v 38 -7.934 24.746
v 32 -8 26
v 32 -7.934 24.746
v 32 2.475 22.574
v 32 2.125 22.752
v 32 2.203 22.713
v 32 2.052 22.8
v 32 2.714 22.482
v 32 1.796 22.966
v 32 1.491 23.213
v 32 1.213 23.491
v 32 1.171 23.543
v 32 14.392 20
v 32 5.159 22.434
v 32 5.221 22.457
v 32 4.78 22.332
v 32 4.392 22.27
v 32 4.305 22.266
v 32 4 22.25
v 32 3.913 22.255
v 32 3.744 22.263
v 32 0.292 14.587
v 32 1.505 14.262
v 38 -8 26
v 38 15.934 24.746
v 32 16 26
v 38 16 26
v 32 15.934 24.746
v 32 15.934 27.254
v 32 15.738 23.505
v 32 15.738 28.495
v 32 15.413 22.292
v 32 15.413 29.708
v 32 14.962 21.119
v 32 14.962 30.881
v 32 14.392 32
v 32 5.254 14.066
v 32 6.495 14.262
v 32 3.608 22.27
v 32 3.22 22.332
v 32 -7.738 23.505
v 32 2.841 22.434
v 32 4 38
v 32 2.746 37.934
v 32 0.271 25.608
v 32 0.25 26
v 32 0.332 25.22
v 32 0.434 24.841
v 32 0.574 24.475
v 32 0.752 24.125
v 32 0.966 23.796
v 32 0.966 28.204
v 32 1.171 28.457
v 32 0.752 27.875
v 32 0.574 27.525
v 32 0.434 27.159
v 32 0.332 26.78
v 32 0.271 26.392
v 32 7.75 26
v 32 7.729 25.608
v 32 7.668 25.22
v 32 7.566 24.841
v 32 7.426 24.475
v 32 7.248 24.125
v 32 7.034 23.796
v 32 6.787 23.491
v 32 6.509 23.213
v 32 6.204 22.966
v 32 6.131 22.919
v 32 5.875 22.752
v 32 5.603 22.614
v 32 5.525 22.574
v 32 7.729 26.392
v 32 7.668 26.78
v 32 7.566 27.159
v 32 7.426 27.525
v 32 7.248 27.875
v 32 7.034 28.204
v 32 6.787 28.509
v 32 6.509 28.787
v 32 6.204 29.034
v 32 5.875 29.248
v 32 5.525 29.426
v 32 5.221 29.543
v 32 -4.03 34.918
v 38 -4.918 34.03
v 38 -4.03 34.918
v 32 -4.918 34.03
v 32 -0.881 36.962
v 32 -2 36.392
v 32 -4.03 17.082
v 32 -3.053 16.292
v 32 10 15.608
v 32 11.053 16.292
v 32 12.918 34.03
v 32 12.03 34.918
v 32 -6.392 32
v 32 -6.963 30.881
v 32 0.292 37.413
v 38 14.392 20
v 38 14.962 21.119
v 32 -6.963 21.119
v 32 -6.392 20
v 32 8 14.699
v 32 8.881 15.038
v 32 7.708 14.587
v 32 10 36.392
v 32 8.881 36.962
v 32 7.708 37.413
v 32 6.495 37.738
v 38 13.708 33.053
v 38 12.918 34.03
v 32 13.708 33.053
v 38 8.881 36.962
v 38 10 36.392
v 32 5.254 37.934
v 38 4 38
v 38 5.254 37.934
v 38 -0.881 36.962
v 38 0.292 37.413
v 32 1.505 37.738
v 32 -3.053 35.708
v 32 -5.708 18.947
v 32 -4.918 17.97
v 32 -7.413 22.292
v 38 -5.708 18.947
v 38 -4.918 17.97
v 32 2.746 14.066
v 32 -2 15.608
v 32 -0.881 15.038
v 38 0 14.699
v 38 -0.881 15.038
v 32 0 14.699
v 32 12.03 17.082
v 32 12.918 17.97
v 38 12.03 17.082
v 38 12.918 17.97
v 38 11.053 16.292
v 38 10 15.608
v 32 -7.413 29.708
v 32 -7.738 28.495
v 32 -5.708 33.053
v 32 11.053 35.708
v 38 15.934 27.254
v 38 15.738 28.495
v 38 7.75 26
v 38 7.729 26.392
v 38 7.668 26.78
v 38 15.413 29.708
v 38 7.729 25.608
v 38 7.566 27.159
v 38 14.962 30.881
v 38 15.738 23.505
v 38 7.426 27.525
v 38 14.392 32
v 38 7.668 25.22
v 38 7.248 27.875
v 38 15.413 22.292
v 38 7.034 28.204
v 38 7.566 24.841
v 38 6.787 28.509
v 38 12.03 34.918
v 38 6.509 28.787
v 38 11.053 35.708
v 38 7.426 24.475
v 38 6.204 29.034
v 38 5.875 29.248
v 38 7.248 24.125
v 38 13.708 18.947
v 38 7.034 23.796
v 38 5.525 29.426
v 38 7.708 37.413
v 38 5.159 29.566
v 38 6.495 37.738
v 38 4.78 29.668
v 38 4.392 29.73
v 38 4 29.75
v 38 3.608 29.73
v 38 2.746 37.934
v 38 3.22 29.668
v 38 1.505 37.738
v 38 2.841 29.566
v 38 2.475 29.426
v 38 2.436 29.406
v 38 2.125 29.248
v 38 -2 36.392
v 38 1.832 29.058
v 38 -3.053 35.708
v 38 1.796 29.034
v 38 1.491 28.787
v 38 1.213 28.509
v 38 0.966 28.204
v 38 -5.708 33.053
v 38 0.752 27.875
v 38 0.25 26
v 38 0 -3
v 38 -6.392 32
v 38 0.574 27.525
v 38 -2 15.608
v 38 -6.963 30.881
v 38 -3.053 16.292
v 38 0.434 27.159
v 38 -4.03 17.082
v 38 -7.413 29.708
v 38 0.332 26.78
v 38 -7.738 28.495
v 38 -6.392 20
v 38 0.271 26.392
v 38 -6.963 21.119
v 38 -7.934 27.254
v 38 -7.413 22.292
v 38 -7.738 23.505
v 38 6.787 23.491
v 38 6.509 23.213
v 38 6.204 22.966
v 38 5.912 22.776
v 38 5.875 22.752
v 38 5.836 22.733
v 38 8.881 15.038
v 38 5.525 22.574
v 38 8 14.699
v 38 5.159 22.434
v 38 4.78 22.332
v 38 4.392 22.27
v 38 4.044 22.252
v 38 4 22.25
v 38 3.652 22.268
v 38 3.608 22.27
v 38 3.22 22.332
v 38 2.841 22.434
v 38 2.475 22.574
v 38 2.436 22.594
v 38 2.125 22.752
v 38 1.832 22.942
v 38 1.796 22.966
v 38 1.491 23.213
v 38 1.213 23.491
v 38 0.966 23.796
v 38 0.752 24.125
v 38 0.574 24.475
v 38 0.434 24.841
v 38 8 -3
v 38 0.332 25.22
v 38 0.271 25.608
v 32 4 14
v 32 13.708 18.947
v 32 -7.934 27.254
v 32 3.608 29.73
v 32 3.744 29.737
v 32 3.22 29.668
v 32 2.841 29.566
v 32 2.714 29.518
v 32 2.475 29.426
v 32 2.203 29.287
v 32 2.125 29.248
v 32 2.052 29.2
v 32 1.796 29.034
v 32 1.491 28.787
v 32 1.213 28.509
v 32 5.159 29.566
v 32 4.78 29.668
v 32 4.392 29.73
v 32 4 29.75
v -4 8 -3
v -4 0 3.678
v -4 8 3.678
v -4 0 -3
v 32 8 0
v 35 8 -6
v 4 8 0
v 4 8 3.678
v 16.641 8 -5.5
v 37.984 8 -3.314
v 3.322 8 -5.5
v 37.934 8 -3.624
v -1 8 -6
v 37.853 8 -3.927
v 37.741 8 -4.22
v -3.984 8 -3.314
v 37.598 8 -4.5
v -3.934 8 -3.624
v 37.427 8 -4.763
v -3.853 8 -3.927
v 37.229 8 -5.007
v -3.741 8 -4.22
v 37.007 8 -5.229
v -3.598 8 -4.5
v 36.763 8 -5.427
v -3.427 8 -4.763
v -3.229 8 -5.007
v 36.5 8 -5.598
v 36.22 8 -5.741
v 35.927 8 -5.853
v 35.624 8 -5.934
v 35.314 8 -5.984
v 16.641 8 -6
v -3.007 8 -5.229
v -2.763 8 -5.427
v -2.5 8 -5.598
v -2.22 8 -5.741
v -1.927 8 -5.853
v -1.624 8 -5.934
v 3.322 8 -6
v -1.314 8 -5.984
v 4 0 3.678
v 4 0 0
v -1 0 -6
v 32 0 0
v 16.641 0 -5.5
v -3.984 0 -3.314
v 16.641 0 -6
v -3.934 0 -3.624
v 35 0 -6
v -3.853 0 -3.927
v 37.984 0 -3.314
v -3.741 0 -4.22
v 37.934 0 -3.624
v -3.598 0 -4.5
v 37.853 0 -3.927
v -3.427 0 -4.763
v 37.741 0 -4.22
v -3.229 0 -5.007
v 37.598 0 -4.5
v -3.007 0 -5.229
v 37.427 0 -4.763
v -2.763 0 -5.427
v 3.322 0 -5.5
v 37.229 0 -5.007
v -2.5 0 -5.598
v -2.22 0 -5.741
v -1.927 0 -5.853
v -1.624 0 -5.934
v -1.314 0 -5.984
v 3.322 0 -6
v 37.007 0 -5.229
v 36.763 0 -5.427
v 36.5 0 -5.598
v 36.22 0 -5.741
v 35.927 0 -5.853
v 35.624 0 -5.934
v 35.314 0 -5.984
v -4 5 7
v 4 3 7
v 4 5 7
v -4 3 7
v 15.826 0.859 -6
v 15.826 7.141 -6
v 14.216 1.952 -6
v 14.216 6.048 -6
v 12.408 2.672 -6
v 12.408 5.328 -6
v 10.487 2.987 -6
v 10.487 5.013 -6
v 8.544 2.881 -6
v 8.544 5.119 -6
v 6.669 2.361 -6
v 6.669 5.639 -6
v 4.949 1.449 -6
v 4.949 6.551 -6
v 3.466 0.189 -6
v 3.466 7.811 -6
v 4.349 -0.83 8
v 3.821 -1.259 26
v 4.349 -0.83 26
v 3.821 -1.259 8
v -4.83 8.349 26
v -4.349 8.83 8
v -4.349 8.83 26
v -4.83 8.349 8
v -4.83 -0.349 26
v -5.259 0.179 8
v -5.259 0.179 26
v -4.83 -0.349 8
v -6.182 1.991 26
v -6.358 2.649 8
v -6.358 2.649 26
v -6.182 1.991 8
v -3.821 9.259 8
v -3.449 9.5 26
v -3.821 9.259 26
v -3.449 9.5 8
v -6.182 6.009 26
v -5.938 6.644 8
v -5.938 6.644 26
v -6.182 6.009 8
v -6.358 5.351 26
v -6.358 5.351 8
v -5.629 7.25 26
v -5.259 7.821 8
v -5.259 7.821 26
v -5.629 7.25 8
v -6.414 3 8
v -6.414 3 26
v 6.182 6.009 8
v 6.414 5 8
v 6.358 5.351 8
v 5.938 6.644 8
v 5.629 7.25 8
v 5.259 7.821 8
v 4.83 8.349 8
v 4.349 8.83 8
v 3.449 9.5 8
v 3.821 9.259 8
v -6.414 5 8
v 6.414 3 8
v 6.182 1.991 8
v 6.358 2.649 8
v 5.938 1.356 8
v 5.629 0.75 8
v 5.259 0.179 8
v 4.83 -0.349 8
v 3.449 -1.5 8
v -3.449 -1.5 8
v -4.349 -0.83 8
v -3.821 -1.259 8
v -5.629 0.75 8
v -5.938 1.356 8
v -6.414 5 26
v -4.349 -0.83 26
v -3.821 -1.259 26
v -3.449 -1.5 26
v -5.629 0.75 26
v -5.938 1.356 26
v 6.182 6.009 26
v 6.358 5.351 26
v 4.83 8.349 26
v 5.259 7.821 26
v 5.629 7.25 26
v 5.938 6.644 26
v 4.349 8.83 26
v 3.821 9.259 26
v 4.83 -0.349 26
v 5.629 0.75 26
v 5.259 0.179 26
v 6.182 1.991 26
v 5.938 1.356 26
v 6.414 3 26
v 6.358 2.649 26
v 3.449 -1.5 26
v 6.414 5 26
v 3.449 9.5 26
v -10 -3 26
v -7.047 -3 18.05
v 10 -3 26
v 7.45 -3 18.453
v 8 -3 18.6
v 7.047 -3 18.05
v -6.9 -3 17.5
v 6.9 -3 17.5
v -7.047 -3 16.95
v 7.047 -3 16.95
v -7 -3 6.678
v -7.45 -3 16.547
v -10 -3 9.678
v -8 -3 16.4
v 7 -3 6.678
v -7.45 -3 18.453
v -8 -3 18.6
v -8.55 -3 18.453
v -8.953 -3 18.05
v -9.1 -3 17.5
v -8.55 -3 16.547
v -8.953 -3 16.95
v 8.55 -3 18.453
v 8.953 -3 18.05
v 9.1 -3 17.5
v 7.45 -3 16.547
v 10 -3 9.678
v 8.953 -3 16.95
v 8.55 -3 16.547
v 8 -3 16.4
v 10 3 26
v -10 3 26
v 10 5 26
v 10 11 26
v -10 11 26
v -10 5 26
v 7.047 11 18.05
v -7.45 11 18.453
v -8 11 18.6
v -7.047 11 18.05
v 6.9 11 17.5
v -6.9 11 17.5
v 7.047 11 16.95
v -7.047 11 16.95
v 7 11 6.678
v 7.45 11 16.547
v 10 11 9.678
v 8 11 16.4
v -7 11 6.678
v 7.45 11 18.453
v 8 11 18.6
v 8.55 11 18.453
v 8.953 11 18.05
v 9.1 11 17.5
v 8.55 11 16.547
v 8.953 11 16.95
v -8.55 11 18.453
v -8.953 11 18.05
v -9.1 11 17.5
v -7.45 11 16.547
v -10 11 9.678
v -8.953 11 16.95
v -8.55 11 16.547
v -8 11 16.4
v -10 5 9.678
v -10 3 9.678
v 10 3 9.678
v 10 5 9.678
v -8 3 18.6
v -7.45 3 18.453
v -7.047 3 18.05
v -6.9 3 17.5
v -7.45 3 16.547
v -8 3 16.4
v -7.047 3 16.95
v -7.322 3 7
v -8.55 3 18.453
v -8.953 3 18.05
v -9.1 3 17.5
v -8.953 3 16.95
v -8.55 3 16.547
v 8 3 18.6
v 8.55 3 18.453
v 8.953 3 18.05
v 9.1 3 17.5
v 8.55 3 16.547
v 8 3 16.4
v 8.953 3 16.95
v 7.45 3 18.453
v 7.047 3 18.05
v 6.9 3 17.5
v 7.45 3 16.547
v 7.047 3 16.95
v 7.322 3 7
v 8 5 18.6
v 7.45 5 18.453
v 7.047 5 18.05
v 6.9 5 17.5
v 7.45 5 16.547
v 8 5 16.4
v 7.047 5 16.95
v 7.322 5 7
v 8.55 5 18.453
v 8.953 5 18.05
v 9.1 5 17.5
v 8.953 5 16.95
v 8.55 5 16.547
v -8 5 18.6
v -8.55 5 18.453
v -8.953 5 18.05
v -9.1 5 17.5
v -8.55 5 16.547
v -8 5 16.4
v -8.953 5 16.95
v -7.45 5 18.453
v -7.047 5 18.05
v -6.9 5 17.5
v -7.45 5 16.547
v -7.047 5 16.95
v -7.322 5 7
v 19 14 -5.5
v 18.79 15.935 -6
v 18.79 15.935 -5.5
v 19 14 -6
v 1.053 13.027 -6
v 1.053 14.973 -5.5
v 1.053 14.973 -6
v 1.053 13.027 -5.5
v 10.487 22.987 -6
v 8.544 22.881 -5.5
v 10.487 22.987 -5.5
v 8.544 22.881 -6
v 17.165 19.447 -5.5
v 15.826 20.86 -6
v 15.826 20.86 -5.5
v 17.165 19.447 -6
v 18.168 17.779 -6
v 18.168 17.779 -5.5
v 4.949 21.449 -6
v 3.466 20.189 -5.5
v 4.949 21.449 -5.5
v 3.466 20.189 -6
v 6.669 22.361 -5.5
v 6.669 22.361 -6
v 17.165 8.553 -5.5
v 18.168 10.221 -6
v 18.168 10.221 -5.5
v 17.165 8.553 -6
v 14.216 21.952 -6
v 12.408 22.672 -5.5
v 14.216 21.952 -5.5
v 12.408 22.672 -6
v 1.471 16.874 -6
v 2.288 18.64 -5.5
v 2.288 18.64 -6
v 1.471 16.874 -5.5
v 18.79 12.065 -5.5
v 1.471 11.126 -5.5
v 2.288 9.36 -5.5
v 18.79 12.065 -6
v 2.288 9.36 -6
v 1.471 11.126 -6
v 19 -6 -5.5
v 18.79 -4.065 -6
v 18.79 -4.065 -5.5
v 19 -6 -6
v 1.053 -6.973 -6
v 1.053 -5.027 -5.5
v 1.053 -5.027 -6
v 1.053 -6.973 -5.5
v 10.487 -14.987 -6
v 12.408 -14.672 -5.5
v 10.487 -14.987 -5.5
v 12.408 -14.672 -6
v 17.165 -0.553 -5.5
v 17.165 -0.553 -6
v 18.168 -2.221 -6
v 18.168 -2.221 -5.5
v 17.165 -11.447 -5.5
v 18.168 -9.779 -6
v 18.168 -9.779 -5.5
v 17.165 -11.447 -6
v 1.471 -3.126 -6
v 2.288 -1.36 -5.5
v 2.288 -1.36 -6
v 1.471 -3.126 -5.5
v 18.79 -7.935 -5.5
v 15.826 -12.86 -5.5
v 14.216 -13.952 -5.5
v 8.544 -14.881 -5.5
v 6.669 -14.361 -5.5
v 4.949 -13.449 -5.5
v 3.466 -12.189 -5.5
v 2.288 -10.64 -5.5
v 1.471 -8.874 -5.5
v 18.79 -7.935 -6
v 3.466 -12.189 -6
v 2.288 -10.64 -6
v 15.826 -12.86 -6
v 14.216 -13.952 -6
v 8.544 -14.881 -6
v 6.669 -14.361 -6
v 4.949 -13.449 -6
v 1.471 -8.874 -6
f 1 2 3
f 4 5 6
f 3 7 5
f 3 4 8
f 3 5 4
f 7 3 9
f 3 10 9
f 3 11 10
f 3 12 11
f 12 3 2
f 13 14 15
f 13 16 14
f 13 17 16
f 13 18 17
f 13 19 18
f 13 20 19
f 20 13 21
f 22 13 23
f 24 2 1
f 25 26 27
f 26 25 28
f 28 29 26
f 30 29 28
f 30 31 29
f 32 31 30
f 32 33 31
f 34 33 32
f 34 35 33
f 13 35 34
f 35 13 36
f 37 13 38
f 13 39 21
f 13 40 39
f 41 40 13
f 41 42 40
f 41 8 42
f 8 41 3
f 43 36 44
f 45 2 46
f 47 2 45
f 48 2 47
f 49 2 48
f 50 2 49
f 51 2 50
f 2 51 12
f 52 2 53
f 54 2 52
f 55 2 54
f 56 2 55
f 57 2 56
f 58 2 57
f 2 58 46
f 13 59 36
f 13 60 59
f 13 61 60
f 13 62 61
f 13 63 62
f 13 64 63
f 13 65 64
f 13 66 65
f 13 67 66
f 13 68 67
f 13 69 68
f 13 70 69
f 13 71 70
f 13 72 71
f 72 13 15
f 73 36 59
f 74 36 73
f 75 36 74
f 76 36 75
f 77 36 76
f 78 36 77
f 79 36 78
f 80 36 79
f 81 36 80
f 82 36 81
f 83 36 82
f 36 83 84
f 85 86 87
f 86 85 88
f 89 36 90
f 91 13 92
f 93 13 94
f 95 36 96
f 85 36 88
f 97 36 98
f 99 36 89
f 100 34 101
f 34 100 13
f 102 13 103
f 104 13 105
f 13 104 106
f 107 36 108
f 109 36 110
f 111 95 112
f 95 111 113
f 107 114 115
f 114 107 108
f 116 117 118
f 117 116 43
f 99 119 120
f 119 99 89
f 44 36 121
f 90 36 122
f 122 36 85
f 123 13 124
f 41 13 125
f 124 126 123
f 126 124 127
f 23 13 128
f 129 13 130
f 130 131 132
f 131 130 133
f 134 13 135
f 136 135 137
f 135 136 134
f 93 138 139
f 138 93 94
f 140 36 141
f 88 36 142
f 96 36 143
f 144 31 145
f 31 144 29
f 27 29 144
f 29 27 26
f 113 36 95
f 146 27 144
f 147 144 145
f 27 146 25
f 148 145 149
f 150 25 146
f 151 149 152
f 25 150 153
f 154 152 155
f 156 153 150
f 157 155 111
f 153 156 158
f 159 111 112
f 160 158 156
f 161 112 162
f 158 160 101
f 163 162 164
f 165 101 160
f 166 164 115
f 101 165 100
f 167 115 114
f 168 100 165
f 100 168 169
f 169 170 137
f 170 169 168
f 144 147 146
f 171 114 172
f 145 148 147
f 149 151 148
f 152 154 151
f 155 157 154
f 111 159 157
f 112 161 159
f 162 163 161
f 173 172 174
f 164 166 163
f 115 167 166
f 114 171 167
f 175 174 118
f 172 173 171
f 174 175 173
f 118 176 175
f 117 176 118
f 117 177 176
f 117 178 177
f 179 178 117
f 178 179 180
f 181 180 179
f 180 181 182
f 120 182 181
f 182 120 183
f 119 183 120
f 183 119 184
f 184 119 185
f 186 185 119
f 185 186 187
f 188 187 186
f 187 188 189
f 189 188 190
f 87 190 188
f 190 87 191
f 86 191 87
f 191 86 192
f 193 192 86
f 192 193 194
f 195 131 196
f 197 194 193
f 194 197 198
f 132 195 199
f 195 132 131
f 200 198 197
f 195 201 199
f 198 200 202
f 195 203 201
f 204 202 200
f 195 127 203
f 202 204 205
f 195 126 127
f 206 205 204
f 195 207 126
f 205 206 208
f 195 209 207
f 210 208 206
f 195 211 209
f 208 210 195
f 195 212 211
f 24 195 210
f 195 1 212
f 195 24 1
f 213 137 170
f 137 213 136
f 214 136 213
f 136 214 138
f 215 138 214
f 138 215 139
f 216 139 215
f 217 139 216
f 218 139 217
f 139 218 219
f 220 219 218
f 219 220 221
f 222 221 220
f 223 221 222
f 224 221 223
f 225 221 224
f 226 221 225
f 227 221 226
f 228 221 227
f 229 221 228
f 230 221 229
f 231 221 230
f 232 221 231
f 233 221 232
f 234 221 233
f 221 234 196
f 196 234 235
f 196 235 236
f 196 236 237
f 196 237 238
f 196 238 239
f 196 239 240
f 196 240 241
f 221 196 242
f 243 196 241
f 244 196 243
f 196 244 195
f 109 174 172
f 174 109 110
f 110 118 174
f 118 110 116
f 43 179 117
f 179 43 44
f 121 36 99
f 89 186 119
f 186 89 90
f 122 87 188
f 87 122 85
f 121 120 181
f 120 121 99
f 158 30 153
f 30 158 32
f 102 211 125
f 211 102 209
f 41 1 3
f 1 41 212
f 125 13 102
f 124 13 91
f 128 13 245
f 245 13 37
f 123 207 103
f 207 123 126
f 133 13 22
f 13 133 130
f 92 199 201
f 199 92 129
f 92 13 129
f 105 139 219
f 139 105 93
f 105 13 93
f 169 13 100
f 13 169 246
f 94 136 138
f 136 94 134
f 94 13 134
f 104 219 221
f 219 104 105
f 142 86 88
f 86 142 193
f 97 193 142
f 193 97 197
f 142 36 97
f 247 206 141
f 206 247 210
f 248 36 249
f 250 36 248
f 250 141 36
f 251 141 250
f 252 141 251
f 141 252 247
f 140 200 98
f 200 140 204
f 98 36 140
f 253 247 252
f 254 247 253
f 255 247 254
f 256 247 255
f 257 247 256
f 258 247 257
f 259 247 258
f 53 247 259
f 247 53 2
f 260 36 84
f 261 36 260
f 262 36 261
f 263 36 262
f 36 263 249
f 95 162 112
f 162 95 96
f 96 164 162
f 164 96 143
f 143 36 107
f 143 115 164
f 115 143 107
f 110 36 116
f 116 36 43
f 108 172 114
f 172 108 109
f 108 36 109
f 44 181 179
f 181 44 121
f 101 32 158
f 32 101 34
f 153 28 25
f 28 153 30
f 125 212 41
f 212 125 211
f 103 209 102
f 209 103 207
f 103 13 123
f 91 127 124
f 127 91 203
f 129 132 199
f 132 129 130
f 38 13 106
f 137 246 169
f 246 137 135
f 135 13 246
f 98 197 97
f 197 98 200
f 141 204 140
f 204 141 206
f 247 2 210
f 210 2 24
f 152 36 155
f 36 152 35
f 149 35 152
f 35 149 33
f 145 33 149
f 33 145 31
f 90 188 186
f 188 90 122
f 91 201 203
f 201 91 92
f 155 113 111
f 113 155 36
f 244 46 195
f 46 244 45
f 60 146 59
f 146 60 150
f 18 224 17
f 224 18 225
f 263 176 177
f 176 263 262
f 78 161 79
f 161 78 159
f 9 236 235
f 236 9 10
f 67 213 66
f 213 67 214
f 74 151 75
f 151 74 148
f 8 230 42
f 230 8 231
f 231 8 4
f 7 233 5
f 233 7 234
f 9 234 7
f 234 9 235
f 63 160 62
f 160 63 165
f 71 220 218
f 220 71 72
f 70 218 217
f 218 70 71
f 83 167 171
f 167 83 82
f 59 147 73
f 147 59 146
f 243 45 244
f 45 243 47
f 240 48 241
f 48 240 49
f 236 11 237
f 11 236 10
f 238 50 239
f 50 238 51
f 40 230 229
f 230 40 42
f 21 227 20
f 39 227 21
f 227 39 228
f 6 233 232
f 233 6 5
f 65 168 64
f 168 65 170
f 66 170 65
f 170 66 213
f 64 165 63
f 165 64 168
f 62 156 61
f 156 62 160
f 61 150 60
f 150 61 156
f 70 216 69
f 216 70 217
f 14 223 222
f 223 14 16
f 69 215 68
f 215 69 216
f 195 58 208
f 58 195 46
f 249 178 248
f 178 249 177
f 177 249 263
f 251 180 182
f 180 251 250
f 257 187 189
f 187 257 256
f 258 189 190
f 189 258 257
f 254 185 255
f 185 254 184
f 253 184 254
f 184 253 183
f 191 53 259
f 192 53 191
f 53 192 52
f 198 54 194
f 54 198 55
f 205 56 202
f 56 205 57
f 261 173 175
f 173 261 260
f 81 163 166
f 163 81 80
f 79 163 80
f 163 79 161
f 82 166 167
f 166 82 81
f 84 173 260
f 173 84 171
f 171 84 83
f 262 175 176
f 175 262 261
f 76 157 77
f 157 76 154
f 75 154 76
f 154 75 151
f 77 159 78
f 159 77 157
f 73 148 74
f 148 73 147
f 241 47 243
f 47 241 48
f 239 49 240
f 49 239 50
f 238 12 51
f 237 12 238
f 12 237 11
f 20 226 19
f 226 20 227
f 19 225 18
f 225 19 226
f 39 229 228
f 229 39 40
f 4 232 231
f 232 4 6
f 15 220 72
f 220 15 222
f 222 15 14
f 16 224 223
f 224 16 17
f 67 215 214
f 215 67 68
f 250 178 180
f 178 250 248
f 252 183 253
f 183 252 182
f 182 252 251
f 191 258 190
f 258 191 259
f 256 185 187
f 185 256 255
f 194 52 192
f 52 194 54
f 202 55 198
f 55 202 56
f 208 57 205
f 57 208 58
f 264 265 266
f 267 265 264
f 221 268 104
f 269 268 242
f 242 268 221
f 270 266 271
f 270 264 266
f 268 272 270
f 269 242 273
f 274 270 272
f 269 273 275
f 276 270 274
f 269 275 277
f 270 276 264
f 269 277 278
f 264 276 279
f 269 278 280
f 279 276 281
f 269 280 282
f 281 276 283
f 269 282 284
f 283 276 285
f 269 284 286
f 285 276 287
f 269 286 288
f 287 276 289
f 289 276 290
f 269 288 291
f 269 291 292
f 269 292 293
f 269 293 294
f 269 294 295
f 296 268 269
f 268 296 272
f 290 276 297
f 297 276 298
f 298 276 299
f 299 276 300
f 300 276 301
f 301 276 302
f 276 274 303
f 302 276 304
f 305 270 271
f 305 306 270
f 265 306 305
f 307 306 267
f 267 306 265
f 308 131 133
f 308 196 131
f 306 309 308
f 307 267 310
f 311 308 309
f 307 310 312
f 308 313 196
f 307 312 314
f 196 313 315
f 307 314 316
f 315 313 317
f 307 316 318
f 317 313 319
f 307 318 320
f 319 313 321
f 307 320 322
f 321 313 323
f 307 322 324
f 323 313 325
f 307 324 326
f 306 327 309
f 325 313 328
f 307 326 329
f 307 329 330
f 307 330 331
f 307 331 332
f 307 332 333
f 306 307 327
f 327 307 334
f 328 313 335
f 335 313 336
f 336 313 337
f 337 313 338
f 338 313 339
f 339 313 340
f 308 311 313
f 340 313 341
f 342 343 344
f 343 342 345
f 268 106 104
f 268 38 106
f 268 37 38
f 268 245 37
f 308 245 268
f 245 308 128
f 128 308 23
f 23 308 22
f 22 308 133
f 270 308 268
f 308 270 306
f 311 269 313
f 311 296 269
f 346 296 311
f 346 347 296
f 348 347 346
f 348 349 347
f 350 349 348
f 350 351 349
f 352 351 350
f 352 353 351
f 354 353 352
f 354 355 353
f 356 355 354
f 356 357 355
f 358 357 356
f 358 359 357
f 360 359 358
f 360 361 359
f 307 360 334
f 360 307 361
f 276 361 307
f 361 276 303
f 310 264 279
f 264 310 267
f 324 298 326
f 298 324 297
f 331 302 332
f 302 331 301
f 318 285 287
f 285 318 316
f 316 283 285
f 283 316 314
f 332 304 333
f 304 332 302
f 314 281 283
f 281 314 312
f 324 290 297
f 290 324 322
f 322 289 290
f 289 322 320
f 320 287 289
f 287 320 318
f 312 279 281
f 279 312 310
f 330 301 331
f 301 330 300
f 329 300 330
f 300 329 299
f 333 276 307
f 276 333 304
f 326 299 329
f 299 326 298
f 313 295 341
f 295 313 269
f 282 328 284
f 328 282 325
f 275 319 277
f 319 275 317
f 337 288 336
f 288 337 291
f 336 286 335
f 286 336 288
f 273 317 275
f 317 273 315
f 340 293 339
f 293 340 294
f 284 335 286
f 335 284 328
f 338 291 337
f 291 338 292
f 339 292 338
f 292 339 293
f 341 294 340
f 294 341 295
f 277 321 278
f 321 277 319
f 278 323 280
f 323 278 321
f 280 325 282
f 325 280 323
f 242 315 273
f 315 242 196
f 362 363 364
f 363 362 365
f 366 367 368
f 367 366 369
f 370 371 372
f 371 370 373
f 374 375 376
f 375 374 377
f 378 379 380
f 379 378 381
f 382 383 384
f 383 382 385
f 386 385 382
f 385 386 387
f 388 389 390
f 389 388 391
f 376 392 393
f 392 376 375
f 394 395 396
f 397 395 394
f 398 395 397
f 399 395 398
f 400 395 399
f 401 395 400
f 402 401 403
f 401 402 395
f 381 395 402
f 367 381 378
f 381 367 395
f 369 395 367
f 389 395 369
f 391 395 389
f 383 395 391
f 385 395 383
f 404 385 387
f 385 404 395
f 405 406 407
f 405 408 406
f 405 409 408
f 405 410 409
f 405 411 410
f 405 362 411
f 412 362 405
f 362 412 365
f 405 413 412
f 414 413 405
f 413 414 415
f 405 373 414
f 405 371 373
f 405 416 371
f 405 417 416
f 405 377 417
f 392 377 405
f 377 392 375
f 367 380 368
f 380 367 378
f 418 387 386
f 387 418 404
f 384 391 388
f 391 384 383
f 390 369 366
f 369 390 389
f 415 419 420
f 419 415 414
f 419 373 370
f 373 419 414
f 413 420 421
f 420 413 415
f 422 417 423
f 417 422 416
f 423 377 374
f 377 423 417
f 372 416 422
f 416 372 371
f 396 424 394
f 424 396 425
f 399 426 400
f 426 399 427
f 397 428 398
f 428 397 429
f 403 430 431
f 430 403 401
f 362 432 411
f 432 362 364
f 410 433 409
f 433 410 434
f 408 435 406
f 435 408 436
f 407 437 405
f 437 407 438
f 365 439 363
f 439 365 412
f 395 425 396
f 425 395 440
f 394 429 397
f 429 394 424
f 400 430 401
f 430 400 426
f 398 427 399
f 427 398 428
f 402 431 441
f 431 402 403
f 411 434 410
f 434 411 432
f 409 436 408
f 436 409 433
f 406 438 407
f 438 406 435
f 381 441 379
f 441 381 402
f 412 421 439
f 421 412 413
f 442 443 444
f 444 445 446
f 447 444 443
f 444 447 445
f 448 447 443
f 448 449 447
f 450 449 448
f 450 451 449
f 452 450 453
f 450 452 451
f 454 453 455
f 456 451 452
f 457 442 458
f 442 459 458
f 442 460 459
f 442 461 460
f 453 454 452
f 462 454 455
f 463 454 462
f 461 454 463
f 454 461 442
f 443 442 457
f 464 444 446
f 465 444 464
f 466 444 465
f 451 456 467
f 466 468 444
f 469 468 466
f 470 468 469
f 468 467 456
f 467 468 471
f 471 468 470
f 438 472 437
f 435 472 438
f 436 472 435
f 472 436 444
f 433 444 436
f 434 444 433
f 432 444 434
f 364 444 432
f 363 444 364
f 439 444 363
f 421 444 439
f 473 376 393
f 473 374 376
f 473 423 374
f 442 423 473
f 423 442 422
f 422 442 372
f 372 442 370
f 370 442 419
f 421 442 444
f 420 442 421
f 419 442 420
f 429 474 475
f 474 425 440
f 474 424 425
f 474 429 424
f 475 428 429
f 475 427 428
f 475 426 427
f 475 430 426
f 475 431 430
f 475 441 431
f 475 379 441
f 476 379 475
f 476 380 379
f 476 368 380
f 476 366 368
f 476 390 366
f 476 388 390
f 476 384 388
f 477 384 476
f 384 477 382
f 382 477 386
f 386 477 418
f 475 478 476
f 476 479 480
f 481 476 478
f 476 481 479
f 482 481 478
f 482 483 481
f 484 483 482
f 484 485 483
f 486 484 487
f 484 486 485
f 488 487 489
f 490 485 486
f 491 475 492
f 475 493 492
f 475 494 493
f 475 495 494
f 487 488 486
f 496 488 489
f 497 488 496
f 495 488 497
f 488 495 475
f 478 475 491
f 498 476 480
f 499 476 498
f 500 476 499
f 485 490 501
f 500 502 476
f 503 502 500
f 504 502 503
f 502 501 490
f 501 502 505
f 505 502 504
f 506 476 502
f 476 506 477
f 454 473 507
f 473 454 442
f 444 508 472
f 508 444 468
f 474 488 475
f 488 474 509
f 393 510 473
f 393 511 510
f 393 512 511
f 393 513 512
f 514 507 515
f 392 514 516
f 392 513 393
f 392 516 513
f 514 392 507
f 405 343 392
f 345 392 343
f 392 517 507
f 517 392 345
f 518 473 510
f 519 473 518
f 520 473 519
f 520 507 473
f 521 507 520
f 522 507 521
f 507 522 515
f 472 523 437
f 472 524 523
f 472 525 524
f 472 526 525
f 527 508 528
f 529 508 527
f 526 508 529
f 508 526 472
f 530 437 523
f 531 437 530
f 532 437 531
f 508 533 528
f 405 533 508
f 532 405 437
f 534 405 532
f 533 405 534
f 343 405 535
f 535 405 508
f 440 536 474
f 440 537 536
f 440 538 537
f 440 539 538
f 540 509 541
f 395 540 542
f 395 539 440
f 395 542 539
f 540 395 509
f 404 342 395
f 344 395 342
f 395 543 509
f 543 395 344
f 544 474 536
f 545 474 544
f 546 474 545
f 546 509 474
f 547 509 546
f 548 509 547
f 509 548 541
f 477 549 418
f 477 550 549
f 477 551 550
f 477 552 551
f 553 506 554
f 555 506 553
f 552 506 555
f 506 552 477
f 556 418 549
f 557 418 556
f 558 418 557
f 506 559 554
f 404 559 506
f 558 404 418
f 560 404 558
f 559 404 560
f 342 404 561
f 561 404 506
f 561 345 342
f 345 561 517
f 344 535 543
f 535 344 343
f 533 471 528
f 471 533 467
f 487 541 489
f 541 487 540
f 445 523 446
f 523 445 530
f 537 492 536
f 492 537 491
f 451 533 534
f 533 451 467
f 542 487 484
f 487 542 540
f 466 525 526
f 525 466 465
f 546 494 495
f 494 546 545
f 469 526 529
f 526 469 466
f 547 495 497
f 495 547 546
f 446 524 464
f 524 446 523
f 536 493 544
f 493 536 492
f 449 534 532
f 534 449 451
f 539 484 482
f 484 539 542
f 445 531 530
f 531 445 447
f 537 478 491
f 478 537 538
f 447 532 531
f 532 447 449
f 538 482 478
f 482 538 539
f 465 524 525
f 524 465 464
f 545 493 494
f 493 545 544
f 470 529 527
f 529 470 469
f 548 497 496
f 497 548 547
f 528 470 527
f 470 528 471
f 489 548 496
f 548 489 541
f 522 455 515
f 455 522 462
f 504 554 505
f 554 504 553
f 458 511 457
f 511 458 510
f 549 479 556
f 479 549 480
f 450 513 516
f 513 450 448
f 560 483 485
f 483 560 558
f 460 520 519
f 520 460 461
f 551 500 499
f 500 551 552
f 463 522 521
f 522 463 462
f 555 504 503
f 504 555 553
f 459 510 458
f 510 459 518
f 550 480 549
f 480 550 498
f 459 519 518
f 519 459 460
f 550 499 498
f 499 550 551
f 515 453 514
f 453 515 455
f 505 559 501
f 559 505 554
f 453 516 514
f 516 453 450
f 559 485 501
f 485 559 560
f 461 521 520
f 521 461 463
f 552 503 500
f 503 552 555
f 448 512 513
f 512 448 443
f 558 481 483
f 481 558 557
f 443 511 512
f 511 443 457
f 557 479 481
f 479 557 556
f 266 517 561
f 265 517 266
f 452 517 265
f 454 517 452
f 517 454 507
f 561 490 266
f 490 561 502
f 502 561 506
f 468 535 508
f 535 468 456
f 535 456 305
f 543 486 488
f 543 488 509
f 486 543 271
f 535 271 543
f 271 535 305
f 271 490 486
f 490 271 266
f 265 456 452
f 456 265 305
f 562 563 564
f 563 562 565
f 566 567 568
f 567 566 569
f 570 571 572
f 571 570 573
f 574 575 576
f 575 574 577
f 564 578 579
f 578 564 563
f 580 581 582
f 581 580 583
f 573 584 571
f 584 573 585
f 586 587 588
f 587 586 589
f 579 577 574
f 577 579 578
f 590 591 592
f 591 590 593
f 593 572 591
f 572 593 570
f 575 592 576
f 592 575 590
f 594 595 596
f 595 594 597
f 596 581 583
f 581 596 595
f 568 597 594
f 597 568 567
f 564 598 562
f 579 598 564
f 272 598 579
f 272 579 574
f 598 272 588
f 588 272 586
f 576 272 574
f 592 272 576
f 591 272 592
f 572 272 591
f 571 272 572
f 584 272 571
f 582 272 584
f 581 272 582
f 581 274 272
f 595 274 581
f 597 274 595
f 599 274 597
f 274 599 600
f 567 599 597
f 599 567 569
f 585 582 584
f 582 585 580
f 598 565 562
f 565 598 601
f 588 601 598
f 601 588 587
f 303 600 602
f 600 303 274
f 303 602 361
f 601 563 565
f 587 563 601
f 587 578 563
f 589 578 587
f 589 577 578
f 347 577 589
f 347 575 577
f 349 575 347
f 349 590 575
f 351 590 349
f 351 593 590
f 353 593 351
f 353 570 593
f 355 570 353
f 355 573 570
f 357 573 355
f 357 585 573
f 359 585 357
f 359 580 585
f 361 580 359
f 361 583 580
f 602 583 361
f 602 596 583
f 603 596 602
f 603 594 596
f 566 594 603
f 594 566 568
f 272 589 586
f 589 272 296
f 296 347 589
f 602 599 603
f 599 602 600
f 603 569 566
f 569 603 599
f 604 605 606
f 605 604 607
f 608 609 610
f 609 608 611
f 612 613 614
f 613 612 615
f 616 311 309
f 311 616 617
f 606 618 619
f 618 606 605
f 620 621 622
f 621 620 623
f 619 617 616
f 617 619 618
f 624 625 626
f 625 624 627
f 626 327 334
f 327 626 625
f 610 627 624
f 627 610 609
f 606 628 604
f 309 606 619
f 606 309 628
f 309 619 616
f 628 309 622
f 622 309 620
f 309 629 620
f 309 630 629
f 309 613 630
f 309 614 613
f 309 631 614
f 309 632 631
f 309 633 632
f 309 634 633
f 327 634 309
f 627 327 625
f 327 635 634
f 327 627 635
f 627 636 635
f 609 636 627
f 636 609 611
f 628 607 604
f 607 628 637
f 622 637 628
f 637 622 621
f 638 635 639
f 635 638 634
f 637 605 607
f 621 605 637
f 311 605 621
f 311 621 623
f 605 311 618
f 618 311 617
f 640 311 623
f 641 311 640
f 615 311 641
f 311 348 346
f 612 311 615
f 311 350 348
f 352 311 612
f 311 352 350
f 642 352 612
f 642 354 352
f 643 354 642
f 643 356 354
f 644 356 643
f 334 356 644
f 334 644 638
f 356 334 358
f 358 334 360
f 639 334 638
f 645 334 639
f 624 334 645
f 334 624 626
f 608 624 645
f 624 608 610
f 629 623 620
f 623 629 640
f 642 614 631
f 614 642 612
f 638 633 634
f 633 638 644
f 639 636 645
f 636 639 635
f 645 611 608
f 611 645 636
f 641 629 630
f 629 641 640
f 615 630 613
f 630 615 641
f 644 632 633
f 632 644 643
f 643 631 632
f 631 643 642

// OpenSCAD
translate([0,4,3])rotate([0,0,90])
clamp();

// apoyos para imprimir sin despegarse
translate([10,14,-6])cylinder(d=18,h=0.5);
translate([10,-6,-6])cylinder(d=18,h=0.5);

rotate([-90,0,0]) bracket();

module bracket(){
$fn=60;
difference(){
translate([32,-26,4])rotate([0,90,0])
cylinder(d=24,h=6);
translate([30,-26,4])rotate([0,90,0])
cylinder(d=7.5,h=9);
}

translate([-4,-7,0])cube([8,10,8]);
translate([32,-22,0])cube([6,25,8]);
translate([-1,0,0])cube([36,6,8]);

translate([-1,3,0])rotate([0,0,-90])
cylinder(d=6,h=8);
translate([35,3,0])rotate([0,0,-90])
cylinder(d=6,h=8);

}
//translate([-18,-20,-1])cube([10,10,20]);

module clamp(){
difference(){
translate([-7,-10,0])
cube([14,20,23]);
difference(){
    translate([0,0,5])cylinder(d=13,h=25,$fn=60);
    translate([6.5,0,12])cube([2,12,25],center=true);
    translate([-6.5,0,12])cube([2,12,25],center=true);
}
translate([-1,-11,4])cube([2,22,25]);
translate([-9,-8,14.5])rotate([0,90,0])
cylinder(d=2.2,h=21,$fn=12);
translate([-9,8,14.5])rotate([0,90,0])
cylinder(d=2.2,h=21,$fn=12);
translate([0,21,0])rotate([45,0,0])cube(size=[25,25,25],center=true);
translate([0,-21,0])rotate([45,0,0])cube(size=[25,25,25],center=true);
translate([21,0,0])rotate([0,0,90])rotate([45,0,0])
cube(size=[25,25,25],center=true);
translate([-21,0,0])rotate([0,0,90])rotate([45,0,0])
cube(size=[25,25,25],center=true);
}
}
